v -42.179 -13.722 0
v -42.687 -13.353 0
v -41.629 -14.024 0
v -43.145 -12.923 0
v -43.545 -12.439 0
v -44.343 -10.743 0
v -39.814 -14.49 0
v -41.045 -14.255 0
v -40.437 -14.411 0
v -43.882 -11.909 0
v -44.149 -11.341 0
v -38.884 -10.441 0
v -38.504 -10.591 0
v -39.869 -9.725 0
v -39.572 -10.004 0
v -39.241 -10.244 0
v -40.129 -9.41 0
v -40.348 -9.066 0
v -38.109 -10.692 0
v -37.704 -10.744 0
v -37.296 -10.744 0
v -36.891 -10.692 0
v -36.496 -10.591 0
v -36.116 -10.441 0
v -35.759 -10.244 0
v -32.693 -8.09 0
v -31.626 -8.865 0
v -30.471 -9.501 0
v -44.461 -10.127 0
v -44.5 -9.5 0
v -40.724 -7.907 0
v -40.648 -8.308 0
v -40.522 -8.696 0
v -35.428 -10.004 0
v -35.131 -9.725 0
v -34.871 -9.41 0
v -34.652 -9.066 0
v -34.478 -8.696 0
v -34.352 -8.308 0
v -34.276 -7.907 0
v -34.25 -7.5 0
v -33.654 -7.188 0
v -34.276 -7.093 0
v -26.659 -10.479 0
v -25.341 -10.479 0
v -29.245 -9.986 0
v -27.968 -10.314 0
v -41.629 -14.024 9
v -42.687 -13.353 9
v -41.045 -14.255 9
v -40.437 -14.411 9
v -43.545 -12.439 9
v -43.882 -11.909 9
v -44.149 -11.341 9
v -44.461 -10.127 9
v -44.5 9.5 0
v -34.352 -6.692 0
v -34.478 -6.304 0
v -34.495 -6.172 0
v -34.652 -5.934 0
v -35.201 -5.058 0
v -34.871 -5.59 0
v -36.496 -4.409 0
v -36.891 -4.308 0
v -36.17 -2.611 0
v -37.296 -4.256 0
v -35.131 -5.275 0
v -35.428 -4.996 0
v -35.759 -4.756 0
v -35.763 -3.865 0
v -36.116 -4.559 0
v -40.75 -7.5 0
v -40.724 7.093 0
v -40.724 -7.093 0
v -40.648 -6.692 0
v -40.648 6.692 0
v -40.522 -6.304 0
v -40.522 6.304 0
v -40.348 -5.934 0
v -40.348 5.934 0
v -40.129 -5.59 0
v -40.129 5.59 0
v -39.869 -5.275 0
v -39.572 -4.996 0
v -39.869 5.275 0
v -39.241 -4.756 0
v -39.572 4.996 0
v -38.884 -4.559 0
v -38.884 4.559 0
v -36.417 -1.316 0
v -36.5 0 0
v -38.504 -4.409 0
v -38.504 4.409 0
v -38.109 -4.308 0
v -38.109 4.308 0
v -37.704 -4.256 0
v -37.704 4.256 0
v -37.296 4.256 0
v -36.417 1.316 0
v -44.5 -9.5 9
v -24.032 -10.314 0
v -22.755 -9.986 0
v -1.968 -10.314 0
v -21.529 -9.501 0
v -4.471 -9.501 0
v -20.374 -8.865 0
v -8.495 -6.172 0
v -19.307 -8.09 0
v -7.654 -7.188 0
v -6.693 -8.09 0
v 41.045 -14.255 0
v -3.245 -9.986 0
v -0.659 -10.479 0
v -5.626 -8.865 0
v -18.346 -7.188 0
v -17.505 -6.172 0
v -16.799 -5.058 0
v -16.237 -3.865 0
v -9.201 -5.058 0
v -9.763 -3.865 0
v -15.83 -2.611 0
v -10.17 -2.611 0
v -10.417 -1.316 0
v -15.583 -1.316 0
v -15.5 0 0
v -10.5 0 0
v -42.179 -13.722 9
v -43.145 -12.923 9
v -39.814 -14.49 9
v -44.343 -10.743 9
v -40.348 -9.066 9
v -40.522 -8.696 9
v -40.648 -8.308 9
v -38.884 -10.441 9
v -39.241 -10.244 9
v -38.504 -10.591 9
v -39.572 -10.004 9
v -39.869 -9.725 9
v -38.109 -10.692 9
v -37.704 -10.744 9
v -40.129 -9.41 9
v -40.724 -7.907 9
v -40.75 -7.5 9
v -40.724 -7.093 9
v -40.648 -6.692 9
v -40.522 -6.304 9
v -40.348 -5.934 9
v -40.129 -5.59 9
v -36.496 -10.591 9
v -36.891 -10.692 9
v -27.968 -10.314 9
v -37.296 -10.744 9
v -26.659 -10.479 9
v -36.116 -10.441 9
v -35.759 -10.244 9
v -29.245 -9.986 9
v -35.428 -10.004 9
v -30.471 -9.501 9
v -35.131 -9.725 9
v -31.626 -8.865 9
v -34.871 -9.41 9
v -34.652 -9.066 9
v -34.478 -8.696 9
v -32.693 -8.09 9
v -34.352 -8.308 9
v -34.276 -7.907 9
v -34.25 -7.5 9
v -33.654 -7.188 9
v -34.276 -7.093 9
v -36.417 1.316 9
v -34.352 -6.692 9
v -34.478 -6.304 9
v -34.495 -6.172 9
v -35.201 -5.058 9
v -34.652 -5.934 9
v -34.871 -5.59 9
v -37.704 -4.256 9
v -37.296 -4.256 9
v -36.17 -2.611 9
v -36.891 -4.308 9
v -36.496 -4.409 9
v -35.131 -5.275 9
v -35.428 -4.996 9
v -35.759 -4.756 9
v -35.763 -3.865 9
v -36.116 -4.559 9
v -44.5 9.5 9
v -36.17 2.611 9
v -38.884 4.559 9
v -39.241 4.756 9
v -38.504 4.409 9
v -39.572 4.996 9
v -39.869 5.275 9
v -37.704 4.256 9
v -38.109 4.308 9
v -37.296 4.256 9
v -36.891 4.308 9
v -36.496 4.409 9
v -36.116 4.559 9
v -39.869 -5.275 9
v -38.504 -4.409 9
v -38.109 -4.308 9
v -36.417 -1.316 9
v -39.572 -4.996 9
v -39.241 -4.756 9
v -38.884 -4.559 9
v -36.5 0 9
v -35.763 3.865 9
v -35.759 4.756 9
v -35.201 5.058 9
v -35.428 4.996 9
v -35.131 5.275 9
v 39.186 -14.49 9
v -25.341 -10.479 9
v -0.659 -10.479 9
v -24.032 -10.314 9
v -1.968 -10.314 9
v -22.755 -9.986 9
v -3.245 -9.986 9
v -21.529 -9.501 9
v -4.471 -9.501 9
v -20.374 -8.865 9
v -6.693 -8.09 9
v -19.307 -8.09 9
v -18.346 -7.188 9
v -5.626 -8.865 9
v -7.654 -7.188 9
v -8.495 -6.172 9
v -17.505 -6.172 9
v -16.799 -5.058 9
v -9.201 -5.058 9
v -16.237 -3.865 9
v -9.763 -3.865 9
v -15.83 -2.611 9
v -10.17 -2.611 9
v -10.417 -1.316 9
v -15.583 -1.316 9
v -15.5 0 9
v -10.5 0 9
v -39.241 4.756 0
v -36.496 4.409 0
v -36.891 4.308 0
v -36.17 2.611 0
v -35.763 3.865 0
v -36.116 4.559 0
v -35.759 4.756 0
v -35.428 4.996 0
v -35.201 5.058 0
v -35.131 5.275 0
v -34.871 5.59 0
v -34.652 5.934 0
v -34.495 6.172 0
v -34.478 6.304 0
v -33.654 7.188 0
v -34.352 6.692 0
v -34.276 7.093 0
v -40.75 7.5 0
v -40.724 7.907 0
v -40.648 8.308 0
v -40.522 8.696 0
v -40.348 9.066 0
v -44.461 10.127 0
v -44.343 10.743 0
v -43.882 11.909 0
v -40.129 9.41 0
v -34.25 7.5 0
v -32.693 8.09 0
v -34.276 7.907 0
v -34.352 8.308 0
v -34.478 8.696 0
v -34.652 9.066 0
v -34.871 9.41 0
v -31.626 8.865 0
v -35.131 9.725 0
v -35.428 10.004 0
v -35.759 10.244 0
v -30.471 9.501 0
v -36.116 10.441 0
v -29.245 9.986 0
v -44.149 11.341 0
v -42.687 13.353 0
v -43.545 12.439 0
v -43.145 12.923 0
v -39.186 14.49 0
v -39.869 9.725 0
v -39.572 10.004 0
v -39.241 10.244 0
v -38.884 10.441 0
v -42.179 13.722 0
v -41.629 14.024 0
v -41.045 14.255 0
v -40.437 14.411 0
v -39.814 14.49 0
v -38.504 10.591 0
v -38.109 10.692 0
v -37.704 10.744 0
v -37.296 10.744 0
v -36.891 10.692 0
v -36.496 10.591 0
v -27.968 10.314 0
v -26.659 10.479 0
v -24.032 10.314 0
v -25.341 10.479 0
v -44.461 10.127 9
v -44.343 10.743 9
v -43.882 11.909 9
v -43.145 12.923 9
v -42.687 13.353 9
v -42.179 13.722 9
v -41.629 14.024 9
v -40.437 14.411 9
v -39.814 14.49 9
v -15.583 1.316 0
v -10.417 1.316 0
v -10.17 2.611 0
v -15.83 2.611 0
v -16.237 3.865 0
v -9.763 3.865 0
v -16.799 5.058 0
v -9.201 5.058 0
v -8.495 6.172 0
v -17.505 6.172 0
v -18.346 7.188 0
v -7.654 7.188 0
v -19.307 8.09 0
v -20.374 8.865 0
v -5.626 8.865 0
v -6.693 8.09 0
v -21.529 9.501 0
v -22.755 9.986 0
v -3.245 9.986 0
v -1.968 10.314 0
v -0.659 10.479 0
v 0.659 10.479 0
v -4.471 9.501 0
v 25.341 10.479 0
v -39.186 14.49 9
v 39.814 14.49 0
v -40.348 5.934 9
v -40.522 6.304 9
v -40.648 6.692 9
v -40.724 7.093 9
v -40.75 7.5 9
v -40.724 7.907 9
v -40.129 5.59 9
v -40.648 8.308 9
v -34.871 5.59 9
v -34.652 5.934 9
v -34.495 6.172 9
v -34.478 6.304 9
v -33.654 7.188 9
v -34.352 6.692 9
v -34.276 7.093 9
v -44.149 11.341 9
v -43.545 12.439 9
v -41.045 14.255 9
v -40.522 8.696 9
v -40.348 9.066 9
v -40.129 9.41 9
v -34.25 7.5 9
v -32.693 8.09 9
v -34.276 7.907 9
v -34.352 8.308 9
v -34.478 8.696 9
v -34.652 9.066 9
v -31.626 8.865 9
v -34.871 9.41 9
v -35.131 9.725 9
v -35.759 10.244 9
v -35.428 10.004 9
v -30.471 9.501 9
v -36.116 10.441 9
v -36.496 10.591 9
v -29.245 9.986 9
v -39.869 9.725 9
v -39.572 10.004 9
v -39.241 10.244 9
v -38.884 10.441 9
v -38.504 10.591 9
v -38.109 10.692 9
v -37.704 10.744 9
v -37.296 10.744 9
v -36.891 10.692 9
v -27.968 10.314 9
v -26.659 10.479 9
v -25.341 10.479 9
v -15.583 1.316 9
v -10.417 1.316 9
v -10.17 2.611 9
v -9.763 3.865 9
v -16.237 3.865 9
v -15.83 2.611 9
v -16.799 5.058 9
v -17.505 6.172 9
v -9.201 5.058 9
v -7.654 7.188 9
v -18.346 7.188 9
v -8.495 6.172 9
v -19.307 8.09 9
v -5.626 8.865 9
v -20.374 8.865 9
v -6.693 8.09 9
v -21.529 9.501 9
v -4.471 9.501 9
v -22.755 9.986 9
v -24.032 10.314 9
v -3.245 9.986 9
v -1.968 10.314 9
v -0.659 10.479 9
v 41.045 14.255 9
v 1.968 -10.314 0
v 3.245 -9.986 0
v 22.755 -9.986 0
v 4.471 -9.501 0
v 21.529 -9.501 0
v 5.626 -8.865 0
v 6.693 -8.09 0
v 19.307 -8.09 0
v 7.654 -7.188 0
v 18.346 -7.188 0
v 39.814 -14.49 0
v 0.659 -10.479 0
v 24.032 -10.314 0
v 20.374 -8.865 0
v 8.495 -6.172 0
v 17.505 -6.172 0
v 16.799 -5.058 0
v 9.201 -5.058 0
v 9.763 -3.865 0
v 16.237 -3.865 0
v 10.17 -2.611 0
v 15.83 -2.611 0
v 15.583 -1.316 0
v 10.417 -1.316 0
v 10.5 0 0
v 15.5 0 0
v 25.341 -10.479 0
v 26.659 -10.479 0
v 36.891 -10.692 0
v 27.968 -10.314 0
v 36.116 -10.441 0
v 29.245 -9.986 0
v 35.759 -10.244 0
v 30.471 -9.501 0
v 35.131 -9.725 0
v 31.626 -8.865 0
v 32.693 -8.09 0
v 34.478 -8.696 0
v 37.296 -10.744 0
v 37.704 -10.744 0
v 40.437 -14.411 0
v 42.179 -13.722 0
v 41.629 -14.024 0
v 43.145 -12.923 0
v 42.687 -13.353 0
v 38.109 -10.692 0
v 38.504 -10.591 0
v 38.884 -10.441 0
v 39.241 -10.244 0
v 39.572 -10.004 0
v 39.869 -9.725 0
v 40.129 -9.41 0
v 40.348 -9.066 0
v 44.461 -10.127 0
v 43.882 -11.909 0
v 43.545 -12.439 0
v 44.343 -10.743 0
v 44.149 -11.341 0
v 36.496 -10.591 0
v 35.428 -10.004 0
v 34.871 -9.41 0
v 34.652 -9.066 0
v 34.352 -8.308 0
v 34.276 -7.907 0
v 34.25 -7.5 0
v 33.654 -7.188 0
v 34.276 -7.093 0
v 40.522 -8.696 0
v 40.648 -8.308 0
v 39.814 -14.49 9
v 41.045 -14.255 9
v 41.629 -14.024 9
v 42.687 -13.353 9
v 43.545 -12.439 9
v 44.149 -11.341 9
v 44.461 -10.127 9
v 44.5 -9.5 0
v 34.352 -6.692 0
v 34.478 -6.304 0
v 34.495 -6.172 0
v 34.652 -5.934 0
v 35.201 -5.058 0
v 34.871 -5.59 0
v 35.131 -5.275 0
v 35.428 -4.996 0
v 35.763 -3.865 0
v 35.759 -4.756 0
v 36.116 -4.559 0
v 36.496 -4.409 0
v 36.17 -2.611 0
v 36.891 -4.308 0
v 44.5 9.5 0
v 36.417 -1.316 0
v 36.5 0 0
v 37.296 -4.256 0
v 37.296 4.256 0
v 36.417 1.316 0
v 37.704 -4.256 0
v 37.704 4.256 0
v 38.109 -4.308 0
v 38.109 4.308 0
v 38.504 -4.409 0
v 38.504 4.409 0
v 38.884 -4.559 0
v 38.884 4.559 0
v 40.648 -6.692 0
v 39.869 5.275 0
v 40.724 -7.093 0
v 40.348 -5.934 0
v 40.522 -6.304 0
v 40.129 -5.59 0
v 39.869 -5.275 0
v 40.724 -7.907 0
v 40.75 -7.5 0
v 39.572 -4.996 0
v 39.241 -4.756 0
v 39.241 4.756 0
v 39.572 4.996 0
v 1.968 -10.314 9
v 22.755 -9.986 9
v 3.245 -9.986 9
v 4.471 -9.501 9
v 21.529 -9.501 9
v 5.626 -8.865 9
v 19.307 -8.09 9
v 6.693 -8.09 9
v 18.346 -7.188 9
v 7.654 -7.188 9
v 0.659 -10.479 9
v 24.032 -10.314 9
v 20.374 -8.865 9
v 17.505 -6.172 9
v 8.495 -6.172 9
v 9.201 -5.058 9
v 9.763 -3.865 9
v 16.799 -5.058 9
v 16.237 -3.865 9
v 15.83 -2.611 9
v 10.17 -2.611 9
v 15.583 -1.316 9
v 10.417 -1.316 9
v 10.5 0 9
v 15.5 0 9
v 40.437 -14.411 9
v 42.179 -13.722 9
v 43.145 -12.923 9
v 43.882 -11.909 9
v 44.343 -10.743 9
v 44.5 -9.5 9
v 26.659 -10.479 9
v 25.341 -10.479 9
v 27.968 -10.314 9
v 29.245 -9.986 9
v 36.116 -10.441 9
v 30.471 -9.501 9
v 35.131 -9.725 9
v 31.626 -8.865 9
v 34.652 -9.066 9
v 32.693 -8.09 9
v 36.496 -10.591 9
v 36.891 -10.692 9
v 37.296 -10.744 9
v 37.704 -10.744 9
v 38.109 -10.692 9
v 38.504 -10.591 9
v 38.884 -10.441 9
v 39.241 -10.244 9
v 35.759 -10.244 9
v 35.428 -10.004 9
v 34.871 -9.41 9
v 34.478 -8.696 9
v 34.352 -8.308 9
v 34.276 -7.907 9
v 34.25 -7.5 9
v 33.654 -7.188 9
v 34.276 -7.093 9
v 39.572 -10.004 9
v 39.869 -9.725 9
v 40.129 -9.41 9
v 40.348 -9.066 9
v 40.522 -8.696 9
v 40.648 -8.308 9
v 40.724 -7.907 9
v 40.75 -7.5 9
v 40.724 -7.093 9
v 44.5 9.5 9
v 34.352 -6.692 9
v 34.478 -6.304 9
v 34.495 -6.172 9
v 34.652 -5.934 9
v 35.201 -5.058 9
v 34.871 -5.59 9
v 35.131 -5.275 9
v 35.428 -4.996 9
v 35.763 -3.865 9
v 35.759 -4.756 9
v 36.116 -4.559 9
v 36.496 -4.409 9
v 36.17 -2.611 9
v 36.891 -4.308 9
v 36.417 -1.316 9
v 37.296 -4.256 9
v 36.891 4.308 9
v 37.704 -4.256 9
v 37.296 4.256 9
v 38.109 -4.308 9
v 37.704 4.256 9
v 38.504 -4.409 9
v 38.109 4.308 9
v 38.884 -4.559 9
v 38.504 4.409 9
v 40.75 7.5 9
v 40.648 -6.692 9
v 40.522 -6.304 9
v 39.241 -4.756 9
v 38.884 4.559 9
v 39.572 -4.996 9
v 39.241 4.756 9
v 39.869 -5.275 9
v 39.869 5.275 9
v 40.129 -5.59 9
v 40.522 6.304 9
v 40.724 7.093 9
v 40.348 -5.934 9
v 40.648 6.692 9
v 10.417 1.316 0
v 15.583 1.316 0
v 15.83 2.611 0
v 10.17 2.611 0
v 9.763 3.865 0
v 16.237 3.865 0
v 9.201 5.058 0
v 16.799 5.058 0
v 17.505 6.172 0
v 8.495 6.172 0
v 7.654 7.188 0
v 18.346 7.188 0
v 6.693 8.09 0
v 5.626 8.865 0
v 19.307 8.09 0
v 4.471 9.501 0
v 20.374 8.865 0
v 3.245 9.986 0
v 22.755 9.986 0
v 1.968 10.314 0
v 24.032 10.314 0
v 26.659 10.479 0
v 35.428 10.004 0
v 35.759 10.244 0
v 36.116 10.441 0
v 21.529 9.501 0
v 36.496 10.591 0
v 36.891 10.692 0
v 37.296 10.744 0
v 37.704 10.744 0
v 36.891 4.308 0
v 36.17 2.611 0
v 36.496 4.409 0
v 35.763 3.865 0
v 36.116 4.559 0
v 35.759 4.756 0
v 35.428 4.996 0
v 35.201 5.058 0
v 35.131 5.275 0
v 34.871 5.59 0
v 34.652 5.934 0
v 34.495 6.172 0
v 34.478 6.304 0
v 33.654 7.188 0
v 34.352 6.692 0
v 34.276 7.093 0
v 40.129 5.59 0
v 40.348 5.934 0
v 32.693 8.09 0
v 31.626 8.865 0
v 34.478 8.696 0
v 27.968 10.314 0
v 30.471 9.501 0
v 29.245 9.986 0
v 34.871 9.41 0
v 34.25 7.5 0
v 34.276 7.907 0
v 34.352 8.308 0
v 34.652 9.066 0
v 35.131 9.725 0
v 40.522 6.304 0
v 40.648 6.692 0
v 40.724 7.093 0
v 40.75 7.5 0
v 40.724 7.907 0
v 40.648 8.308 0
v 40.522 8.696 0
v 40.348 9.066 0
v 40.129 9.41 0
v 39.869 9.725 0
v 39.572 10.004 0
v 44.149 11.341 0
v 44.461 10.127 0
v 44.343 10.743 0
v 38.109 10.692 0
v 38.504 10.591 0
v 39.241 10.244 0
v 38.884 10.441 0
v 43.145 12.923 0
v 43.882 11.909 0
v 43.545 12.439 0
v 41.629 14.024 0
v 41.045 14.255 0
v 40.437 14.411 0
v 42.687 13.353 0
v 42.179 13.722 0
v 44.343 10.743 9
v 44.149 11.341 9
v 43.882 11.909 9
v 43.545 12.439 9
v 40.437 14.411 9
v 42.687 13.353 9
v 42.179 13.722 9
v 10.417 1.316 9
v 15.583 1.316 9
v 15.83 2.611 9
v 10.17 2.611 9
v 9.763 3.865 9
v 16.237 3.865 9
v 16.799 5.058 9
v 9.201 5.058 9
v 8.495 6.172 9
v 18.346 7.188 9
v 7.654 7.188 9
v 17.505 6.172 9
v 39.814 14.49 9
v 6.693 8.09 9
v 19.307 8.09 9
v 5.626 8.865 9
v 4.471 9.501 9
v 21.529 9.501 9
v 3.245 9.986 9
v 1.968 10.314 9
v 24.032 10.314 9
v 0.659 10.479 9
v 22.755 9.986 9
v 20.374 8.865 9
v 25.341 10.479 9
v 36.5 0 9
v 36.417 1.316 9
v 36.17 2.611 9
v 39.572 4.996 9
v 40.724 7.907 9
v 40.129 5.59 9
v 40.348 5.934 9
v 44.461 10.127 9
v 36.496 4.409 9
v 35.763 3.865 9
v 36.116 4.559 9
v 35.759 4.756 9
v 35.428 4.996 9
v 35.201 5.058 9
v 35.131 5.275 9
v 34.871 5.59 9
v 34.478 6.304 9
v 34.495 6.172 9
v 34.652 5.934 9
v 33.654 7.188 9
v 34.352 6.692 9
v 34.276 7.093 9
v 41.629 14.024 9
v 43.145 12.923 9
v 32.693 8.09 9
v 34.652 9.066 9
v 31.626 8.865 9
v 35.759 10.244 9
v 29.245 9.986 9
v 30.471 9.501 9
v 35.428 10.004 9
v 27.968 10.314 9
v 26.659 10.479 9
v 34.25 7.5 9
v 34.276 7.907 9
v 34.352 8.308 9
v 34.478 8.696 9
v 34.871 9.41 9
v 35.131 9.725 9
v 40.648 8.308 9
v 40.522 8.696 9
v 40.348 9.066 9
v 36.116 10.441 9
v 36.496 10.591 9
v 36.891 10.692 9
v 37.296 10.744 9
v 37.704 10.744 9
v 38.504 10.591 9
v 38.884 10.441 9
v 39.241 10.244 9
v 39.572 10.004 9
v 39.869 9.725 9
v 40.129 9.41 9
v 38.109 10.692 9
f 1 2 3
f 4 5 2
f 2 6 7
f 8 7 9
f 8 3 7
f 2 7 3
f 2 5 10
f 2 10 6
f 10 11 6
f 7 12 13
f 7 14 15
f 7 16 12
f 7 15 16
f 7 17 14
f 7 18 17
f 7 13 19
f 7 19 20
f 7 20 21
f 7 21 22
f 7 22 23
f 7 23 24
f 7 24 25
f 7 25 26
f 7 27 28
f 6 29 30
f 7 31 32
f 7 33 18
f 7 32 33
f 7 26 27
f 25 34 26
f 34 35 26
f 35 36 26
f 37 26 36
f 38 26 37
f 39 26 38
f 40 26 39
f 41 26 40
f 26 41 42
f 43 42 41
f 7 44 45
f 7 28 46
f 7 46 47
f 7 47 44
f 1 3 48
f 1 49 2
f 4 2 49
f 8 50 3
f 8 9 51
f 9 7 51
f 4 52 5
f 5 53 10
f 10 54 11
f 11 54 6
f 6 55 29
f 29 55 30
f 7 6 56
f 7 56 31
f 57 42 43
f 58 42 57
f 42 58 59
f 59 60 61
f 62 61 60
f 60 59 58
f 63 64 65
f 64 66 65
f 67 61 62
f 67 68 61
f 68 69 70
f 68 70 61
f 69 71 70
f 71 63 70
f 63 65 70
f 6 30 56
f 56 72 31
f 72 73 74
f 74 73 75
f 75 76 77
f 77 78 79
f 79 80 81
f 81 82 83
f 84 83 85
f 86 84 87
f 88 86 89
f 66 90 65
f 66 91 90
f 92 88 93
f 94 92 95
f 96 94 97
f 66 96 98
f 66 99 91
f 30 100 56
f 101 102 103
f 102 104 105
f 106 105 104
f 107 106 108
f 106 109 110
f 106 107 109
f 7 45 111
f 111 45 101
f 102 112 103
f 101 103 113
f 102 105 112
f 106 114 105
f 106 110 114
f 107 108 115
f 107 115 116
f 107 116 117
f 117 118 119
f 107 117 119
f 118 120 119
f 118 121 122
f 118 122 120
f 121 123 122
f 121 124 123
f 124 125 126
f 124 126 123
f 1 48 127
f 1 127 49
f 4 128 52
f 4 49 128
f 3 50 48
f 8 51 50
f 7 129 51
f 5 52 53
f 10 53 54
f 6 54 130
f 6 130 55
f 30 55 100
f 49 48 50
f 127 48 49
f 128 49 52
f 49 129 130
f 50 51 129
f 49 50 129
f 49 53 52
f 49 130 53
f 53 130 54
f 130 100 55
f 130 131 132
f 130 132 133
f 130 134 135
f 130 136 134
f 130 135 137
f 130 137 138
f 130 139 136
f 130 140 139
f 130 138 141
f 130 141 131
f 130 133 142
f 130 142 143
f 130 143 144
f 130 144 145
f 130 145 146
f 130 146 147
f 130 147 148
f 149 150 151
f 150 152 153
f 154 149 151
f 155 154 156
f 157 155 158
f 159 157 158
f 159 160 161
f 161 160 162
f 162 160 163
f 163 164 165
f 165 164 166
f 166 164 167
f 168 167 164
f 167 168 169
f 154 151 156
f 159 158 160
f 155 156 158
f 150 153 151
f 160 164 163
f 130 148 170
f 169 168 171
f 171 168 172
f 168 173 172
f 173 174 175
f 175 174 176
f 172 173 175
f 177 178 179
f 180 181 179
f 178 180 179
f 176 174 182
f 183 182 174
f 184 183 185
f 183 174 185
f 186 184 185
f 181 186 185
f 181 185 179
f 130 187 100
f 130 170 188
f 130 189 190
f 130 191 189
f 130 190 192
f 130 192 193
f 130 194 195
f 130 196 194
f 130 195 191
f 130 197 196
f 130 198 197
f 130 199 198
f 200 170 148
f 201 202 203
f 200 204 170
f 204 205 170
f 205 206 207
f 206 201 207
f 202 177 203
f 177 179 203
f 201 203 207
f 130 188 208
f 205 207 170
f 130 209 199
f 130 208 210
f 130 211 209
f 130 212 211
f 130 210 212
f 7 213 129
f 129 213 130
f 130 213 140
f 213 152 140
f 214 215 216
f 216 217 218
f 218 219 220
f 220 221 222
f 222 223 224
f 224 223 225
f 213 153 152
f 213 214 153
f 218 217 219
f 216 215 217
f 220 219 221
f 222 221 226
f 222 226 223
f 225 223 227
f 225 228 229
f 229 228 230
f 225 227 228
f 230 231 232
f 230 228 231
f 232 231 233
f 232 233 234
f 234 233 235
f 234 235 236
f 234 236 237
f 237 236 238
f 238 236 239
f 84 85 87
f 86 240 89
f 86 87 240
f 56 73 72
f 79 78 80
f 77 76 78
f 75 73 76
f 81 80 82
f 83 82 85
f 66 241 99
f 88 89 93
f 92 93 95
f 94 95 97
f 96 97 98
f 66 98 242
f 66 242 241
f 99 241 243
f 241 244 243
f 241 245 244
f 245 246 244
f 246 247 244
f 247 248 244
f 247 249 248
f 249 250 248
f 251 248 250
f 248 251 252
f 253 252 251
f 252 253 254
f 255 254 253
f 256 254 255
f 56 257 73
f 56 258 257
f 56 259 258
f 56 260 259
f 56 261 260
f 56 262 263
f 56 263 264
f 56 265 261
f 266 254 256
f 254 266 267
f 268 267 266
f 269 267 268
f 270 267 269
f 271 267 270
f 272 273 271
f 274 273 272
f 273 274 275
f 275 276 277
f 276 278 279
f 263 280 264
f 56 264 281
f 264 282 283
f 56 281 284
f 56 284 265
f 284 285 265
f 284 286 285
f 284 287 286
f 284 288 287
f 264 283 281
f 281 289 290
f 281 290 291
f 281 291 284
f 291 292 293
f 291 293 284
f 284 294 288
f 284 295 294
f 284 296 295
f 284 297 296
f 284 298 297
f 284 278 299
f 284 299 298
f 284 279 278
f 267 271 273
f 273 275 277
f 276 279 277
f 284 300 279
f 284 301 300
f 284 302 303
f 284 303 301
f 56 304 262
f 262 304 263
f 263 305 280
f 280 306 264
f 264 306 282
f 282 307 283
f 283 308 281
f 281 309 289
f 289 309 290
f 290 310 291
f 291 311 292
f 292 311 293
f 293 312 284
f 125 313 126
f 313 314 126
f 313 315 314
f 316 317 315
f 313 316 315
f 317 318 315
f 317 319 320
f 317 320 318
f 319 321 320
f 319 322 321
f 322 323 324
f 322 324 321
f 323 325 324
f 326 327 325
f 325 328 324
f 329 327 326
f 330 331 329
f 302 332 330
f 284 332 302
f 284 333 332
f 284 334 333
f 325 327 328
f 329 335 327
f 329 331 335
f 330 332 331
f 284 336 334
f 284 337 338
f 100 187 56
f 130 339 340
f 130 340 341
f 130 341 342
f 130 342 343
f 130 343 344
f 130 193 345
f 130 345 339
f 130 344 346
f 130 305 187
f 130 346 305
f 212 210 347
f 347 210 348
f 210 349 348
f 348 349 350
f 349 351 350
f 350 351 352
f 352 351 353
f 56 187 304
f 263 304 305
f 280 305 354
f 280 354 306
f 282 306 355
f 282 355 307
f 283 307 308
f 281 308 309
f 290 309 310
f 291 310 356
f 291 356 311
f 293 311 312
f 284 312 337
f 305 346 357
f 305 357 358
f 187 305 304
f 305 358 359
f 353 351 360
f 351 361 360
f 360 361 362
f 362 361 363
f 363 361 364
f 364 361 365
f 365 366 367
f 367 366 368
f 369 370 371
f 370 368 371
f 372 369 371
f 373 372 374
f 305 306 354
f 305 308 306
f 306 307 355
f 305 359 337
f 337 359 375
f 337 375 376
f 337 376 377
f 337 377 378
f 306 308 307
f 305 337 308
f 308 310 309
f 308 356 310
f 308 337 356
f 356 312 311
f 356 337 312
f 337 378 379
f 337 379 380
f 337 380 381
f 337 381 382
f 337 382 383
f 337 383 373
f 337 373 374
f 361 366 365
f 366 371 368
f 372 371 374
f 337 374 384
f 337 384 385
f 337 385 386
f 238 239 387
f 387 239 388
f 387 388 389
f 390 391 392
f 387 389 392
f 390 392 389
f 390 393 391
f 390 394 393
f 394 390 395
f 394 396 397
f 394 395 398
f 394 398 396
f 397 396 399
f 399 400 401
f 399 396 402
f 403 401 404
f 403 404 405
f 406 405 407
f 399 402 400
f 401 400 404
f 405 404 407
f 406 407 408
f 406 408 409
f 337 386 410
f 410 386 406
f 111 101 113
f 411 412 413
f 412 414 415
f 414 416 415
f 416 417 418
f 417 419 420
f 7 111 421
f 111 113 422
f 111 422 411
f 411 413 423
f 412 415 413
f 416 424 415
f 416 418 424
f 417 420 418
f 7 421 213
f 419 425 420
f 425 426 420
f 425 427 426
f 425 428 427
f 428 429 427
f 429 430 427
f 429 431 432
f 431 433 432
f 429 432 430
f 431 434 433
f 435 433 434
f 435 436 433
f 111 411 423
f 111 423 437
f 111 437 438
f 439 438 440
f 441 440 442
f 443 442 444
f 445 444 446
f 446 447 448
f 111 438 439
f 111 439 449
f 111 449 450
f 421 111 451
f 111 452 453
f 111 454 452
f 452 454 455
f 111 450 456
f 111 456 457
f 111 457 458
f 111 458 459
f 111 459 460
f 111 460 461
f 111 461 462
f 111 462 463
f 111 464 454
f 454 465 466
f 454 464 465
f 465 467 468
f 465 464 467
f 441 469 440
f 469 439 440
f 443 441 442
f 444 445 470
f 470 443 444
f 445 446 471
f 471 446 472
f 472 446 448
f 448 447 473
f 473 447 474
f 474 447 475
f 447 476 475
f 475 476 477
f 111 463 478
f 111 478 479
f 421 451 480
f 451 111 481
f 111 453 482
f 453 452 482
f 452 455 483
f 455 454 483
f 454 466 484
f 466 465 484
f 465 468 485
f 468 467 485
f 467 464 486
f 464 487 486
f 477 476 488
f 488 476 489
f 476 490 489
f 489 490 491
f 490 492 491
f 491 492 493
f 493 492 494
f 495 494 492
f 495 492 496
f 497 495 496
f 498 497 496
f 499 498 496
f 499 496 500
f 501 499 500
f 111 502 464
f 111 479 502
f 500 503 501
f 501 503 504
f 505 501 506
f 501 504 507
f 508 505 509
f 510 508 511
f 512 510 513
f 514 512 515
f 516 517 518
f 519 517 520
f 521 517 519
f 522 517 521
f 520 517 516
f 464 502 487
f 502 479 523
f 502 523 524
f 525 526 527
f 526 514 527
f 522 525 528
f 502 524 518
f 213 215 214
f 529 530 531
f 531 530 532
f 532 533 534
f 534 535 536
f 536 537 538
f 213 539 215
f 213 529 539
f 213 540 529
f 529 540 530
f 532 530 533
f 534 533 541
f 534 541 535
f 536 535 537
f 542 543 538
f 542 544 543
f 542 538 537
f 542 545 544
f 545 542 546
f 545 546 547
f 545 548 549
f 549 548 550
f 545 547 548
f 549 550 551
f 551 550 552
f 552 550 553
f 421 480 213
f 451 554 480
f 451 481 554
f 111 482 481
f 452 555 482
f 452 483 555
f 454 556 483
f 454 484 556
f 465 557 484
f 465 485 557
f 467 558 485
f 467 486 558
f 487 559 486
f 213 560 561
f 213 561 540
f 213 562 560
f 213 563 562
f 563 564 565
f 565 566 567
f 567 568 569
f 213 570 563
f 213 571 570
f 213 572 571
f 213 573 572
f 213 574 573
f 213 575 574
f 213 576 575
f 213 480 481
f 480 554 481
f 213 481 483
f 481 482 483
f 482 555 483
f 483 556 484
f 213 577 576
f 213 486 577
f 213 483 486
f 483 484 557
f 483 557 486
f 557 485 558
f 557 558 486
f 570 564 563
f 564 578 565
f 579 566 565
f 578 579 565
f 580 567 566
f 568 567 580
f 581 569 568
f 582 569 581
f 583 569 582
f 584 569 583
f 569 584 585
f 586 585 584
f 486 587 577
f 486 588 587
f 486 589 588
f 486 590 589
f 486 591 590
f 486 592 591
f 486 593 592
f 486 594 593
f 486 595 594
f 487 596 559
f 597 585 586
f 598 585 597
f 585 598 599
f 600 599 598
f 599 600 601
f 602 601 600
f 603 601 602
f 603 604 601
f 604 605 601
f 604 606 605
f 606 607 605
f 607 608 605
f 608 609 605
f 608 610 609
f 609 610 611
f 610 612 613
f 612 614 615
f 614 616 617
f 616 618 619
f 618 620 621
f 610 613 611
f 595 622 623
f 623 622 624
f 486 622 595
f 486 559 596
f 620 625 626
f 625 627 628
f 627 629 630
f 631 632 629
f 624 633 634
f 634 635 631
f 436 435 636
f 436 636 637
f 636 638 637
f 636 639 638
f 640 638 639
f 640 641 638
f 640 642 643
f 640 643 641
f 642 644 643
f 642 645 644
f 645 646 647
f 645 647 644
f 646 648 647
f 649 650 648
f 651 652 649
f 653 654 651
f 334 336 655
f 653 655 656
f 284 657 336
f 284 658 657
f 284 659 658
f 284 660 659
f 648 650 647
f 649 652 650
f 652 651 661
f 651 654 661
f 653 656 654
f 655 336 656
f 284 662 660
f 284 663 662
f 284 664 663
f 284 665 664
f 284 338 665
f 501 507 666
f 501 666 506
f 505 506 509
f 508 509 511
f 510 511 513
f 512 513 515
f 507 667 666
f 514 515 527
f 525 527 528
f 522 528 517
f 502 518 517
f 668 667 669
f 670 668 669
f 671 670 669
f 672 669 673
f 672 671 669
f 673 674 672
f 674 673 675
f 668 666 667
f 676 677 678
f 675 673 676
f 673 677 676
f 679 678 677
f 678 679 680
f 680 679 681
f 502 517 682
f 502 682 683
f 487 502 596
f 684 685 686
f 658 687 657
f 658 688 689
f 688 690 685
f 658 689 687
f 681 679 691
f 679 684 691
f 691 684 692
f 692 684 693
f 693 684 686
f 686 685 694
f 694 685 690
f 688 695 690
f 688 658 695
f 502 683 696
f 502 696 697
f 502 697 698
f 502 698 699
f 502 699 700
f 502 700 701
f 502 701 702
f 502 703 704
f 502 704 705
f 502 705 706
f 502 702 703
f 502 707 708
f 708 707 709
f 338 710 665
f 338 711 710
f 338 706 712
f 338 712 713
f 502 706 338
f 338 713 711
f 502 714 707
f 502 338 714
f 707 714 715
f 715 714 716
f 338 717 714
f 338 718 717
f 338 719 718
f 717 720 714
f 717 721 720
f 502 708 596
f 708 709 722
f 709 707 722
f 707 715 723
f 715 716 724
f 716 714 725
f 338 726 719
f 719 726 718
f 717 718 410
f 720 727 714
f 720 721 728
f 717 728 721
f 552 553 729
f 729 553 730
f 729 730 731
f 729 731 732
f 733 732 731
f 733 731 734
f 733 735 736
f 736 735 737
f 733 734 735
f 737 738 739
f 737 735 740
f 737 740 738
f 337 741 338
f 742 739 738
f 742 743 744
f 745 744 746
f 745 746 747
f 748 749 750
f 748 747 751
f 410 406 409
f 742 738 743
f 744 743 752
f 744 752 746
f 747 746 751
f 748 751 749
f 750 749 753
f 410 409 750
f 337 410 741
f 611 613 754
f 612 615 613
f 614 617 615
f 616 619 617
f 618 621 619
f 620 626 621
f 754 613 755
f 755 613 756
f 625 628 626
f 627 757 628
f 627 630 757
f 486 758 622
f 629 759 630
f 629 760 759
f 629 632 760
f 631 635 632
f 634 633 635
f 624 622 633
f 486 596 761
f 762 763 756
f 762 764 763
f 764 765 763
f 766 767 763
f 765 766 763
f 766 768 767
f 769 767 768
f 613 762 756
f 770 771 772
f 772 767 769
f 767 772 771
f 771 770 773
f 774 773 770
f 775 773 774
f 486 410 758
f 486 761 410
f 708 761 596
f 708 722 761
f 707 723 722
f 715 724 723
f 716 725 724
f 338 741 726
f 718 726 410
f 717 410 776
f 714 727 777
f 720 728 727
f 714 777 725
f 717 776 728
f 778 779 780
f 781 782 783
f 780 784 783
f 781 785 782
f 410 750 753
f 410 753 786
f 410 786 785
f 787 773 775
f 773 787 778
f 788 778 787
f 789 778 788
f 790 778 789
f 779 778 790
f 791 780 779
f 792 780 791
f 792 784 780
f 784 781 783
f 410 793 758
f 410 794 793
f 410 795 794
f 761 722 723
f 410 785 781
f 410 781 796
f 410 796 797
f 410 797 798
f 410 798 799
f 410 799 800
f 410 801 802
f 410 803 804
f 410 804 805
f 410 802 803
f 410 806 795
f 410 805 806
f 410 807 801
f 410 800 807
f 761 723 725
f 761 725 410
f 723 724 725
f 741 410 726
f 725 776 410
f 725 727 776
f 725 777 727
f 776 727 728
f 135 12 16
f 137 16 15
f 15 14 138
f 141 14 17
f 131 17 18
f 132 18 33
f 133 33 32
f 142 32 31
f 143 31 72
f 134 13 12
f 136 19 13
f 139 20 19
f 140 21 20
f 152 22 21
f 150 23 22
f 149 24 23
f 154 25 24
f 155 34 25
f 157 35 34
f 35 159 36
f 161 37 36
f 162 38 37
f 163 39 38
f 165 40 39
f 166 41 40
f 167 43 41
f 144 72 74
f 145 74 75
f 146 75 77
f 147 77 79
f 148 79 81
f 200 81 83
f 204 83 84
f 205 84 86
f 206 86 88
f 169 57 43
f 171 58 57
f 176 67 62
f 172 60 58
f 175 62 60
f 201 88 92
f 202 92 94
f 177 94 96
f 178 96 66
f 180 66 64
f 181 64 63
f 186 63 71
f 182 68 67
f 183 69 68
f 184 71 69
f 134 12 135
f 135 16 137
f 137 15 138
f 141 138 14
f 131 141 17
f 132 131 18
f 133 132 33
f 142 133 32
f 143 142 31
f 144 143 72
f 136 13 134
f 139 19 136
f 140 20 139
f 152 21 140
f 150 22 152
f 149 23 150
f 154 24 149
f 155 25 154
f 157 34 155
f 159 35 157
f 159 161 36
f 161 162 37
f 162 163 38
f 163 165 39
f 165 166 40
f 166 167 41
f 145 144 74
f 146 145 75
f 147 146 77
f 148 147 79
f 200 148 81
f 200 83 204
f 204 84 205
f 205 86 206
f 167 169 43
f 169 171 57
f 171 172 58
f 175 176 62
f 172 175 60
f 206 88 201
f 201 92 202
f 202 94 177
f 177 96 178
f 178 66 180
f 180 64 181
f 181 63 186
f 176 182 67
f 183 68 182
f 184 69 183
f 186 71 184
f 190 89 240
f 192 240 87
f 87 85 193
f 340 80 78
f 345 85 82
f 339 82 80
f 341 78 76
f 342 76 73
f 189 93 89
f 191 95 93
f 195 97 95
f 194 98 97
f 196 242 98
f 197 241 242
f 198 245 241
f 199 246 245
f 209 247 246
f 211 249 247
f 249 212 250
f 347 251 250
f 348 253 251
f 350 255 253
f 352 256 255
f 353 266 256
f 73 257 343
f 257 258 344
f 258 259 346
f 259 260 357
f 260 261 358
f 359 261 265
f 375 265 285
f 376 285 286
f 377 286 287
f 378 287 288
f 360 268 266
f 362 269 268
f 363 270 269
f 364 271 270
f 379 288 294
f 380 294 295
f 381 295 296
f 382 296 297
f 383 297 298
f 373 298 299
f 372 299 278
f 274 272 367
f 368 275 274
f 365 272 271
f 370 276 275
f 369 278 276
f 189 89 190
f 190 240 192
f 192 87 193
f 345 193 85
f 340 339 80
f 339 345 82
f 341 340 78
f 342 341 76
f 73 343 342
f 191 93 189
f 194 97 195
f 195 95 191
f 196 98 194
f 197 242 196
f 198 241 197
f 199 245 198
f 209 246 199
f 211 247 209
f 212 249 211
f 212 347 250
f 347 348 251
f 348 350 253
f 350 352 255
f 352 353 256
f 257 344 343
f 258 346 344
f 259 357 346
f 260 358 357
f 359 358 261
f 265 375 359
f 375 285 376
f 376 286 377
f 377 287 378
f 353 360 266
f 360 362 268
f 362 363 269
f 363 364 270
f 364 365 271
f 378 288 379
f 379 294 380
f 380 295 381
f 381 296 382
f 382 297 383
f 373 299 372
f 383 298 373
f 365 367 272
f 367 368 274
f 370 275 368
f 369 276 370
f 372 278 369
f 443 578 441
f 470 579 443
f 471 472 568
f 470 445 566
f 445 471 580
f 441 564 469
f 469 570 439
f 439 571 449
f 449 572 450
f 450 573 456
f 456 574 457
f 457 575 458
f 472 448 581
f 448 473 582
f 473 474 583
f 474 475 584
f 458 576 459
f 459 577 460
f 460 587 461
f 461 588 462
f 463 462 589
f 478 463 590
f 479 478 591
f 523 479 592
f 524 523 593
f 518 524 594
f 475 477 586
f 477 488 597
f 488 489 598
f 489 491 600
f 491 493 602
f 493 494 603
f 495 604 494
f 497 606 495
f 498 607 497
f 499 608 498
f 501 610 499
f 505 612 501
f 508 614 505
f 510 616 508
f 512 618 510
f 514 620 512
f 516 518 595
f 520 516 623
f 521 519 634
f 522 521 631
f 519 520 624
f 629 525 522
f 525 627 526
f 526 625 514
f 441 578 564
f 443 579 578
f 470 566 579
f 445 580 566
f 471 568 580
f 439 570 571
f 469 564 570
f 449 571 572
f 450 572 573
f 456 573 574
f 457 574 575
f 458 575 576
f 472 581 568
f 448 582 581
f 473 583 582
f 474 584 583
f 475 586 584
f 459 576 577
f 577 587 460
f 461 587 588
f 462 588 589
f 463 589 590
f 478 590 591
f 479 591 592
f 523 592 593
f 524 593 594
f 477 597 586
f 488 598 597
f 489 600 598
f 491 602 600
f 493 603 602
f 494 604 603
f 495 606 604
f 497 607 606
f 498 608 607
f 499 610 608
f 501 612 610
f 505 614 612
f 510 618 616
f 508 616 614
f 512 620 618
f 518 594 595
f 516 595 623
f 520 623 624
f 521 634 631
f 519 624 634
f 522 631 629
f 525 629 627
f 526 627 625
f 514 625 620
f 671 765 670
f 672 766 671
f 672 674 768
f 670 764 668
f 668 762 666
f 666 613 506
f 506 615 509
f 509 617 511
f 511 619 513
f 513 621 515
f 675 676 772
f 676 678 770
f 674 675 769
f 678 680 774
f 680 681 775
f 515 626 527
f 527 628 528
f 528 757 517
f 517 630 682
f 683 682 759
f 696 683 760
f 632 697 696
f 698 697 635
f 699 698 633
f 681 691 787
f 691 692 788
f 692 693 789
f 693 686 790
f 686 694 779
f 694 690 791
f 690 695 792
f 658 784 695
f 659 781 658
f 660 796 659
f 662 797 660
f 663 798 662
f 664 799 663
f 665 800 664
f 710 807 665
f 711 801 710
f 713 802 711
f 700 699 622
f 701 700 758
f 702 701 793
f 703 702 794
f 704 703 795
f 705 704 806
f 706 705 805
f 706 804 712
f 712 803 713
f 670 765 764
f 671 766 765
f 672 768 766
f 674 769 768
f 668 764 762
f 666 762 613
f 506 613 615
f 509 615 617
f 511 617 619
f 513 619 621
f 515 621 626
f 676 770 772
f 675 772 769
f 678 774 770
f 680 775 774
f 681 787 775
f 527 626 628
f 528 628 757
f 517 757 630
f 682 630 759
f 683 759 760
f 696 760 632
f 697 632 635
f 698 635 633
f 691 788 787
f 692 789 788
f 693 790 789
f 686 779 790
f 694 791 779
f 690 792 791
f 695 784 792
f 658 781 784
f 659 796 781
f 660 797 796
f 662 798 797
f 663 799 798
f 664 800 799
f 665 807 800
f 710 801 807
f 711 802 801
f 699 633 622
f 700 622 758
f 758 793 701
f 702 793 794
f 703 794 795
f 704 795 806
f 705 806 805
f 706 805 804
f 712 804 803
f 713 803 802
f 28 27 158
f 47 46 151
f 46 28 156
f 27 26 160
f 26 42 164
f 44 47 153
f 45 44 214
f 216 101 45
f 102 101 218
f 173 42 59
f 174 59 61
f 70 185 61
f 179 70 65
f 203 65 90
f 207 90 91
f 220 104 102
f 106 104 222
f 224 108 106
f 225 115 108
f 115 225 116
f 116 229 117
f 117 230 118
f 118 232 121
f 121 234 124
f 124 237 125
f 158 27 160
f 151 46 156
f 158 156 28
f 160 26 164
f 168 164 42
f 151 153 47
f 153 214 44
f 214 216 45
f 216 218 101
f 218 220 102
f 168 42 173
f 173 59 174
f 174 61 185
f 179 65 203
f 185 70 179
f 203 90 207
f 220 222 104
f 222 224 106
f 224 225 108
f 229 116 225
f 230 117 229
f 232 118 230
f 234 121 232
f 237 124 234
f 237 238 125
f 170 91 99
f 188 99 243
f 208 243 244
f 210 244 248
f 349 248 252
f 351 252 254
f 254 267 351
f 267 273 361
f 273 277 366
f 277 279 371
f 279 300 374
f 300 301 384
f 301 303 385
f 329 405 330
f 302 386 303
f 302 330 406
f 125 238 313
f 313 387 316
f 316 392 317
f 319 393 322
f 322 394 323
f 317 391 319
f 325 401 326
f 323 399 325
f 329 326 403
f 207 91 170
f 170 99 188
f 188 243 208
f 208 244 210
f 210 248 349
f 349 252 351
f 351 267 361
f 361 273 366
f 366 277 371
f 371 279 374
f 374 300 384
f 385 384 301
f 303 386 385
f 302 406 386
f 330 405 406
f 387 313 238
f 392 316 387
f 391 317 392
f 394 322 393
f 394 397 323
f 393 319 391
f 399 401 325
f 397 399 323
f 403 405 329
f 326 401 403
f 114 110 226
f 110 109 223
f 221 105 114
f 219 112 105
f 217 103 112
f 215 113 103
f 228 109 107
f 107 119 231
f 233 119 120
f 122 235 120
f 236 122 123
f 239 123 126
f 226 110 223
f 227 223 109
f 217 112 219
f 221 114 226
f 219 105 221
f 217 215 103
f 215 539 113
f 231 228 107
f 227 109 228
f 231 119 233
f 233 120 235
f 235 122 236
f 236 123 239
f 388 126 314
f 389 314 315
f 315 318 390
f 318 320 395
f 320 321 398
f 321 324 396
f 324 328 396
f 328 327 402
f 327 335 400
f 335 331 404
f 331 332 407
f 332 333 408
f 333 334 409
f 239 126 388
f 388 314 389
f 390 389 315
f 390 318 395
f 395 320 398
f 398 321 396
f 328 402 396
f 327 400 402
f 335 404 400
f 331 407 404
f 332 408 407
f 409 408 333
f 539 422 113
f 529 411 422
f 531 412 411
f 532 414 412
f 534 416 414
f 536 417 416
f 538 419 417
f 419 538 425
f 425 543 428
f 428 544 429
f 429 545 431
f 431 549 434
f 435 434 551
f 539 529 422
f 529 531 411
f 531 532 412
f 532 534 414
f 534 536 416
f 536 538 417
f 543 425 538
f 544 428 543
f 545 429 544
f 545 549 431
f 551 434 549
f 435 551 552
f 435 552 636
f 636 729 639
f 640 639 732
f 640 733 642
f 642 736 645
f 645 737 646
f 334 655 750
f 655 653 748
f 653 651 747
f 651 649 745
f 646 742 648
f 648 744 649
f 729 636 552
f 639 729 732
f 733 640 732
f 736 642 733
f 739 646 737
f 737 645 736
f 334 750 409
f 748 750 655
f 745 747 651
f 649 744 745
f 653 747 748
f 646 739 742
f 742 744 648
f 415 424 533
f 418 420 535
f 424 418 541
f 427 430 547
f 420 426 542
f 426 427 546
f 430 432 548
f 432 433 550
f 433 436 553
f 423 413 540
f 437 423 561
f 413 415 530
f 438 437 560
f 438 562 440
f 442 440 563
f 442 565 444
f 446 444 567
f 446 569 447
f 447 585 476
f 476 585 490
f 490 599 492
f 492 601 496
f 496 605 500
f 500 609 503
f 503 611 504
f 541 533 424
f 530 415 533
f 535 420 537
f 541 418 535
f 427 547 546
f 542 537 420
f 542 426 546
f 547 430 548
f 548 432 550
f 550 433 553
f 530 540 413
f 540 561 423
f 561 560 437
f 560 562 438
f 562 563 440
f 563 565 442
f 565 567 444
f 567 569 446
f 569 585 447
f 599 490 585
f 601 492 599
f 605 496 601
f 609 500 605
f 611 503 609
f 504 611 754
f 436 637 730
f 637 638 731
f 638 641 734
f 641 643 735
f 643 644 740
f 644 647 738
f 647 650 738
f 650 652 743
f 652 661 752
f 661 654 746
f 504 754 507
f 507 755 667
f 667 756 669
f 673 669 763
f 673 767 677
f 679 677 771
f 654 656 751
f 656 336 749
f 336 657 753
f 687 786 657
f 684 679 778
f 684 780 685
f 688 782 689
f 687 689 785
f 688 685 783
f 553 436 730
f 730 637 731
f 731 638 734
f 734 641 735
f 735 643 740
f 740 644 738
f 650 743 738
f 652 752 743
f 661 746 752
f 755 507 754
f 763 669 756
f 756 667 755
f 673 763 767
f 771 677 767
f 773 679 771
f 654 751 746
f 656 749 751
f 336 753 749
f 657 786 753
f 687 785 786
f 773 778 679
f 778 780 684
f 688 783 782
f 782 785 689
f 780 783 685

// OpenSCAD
$fn = 50;

difference() {
	union() {
		hull() {
			translate(v = [-39.5, 9.5, 0]) {
				cylinder(h = 9, r = 5);
			}
			translate(v = [39.5, 9.5, 0]) {
				cylinder(h = 9, r = 5);
			}
			translate(v = [-39.5, -9.5, 0]) {
				cylinder(h = 9, r = 5);
			}
			translate(v = [39.5, -9.5, 0]) {
				cylinder(h = 9, r = 5);
			}
		}
	}
	union() {
		translate(v = [-37.5, -7.5, -100.0]) {
			cylinder(h = 200, r = 3.25);
		}
		translate(v = [-37.5, 7.5, -100.0]) {
			cylinder(h = 200, r = 3.25);
		}
		translate(v = [37.5, -7.5, -100.0]) {
			cylinder(h = 200, r = 3.25);
		}
		translate(v = [37.5, 7.5, -100.0]) {
			cylinder(h = 200, r = 3.25);
		}
		translate(v = [-37.5, -7.5, -100.0]) {
			cylinder(h = 200, r = 1.8);
		}
		translate(v = [-37.5, 7.5, -100.0]) {
			cylinder(h = 200, r = 1.8);
		}
		translate(v = [37.5, -7.5, -100.0]) {
			cylinder(h = 200, r = 1.8);
		}
		translate(v = [37.5, 7.5, -100.0]) {
			cylinder(h = 200, r = 1.8);
		}
		translate(v = [-26.0, 0, 0.0]) {
			cylinder(h = 9, r = 10.5);
		}
		cylinder(h = 9, r = 10.5);
		translate(v = [26.0, 0, 0.0]) {
			cylinder(h = 9, r = 10.5);
		}
	}
}
